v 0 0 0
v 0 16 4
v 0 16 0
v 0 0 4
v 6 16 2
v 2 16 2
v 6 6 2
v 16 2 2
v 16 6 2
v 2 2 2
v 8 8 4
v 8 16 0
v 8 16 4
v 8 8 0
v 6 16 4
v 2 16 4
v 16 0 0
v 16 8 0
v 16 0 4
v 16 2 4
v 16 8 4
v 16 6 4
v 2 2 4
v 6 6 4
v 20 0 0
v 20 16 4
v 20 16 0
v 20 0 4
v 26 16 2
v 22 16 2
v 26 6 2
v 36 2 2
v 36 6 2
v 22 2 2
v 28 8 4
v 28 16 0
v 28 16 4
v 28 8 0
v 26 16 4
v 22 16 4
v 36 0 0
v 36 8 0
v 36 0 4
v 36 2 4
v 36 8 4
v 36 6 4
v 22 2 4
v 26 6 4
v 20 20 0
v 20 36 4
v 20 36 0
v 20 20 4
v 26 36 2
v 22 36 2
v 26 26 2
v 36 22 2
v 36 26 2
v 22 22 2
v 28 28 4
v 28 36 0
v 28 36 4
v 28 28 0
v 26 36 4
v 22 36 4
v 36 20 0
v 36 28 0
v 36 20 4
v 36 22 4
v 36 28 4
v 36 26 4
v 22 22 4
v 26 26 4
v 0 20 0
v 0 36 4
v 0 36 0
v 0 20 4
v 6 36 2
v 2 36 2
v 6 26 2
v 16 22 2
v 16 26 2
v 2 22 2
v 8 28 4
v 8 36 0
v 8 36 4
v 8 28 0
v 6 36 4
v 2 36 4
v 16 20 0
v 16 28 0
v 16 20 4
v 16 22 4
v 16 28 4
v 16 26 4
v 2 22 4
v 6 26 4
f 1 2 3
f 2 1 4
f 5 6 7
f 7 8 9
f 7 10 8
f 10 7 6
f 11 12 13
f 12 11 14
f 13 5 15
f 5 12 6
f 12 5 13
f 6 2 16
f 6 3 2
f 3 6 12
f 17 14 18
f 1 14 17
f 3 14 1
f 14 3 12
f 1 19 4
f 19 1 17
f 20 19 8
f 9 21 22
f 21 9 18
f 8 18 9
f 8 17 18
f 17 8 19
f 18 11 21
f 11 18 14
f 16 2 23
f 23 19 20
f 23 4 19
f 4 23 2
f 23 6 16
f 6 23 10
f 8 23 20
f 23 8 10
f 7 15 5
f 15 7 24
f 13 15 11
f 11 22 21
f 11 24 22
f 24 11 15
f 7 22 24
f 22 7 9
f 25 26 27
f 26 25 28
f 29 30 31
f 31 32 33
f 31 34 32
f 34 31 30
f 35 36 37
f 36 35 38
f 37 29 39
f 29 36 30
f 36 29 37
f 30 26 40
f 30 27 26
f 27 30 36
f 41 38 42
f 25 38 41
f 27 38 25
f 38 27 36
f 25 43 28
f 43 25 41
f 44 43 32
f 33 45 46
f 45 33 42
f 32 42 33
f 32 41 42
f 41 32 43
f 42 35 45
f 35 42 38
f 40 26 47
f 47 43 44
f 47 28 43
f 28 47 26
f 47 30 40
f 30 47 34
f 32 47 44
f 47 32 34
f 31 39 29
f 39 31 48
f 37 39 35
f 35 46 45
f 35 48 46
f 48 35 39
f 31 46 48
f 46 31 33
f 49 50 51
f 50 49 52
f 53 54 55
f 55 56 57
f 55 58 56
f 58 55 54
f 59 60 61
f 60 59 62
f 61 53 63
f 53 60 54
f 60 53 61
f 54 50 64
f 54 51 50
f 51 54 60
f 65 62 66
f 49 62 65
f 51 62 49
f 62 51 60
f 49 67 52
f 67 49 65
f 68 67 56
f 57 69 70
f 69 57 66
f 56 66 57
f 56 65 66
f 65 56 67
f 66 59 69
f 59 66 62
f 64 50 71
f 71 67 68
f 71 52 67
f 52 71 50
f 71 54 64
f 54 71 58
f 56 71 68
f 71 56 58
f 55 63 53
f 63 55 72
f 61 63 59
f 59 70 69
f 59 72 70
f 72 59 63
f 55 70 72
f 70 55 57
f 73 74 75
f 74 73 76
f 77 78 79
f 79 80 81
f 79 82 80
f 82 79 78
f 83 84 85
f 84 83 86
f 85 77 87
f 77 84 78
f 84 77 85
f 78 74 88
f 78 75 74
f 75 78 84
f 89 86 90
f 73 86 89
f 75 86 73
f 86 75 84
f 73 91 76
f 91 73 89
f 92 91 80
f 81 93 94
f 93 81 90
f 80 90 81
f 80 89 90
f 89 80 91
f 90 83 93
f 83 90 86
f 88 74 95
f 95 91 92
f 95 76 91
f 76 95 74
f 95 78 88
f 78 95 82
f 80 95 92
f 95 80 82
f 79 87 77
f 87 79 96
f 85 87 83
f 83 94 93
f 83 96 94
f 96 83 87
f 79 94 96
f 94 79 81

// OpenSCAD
// 조립 추가 부품 - 모서리에서 씌우는 것 #23
use <../../common/utils.scad>

// 모서리 ㄴ자, todo: 자체 모서리 처리
module joint_type_krs(v = [8, 8, 8], inner = 4, outter = 2) {
	// 아래판
	cube([inner + outter * 2,	v.y,				outter]);
	cube([v.x,					inner + outter * 2,	outter]);

	// 외곽 판
	cube([outter,	v.y,	v.z]);
	cube([v.x,		outter,	v.z]);

	// 내부 판
	translate([inner + outter, inner + outter, 0])	cube([outter, v.y - (inner + outter), v.z]);
	translate([inner + outter, inner + outter, 0])	cube([v.x - (inner + outter), outter, v.z]);
}

module samples() {
	joint_type_krs([16, 16, 4], 4, 2);
	note(16, 16, 4);
	translate([20, 0, 0])	joint_type_krs([16, 16, 4], 4, 2);
	translate([20, 20, 0])	joint_type_krs([16, 16, 4], 4, 2);
	translate([0, 20, 0])	joint_type_krs([16, 16, 4], 4, 2);
}

module build(target) {
}

samples();
